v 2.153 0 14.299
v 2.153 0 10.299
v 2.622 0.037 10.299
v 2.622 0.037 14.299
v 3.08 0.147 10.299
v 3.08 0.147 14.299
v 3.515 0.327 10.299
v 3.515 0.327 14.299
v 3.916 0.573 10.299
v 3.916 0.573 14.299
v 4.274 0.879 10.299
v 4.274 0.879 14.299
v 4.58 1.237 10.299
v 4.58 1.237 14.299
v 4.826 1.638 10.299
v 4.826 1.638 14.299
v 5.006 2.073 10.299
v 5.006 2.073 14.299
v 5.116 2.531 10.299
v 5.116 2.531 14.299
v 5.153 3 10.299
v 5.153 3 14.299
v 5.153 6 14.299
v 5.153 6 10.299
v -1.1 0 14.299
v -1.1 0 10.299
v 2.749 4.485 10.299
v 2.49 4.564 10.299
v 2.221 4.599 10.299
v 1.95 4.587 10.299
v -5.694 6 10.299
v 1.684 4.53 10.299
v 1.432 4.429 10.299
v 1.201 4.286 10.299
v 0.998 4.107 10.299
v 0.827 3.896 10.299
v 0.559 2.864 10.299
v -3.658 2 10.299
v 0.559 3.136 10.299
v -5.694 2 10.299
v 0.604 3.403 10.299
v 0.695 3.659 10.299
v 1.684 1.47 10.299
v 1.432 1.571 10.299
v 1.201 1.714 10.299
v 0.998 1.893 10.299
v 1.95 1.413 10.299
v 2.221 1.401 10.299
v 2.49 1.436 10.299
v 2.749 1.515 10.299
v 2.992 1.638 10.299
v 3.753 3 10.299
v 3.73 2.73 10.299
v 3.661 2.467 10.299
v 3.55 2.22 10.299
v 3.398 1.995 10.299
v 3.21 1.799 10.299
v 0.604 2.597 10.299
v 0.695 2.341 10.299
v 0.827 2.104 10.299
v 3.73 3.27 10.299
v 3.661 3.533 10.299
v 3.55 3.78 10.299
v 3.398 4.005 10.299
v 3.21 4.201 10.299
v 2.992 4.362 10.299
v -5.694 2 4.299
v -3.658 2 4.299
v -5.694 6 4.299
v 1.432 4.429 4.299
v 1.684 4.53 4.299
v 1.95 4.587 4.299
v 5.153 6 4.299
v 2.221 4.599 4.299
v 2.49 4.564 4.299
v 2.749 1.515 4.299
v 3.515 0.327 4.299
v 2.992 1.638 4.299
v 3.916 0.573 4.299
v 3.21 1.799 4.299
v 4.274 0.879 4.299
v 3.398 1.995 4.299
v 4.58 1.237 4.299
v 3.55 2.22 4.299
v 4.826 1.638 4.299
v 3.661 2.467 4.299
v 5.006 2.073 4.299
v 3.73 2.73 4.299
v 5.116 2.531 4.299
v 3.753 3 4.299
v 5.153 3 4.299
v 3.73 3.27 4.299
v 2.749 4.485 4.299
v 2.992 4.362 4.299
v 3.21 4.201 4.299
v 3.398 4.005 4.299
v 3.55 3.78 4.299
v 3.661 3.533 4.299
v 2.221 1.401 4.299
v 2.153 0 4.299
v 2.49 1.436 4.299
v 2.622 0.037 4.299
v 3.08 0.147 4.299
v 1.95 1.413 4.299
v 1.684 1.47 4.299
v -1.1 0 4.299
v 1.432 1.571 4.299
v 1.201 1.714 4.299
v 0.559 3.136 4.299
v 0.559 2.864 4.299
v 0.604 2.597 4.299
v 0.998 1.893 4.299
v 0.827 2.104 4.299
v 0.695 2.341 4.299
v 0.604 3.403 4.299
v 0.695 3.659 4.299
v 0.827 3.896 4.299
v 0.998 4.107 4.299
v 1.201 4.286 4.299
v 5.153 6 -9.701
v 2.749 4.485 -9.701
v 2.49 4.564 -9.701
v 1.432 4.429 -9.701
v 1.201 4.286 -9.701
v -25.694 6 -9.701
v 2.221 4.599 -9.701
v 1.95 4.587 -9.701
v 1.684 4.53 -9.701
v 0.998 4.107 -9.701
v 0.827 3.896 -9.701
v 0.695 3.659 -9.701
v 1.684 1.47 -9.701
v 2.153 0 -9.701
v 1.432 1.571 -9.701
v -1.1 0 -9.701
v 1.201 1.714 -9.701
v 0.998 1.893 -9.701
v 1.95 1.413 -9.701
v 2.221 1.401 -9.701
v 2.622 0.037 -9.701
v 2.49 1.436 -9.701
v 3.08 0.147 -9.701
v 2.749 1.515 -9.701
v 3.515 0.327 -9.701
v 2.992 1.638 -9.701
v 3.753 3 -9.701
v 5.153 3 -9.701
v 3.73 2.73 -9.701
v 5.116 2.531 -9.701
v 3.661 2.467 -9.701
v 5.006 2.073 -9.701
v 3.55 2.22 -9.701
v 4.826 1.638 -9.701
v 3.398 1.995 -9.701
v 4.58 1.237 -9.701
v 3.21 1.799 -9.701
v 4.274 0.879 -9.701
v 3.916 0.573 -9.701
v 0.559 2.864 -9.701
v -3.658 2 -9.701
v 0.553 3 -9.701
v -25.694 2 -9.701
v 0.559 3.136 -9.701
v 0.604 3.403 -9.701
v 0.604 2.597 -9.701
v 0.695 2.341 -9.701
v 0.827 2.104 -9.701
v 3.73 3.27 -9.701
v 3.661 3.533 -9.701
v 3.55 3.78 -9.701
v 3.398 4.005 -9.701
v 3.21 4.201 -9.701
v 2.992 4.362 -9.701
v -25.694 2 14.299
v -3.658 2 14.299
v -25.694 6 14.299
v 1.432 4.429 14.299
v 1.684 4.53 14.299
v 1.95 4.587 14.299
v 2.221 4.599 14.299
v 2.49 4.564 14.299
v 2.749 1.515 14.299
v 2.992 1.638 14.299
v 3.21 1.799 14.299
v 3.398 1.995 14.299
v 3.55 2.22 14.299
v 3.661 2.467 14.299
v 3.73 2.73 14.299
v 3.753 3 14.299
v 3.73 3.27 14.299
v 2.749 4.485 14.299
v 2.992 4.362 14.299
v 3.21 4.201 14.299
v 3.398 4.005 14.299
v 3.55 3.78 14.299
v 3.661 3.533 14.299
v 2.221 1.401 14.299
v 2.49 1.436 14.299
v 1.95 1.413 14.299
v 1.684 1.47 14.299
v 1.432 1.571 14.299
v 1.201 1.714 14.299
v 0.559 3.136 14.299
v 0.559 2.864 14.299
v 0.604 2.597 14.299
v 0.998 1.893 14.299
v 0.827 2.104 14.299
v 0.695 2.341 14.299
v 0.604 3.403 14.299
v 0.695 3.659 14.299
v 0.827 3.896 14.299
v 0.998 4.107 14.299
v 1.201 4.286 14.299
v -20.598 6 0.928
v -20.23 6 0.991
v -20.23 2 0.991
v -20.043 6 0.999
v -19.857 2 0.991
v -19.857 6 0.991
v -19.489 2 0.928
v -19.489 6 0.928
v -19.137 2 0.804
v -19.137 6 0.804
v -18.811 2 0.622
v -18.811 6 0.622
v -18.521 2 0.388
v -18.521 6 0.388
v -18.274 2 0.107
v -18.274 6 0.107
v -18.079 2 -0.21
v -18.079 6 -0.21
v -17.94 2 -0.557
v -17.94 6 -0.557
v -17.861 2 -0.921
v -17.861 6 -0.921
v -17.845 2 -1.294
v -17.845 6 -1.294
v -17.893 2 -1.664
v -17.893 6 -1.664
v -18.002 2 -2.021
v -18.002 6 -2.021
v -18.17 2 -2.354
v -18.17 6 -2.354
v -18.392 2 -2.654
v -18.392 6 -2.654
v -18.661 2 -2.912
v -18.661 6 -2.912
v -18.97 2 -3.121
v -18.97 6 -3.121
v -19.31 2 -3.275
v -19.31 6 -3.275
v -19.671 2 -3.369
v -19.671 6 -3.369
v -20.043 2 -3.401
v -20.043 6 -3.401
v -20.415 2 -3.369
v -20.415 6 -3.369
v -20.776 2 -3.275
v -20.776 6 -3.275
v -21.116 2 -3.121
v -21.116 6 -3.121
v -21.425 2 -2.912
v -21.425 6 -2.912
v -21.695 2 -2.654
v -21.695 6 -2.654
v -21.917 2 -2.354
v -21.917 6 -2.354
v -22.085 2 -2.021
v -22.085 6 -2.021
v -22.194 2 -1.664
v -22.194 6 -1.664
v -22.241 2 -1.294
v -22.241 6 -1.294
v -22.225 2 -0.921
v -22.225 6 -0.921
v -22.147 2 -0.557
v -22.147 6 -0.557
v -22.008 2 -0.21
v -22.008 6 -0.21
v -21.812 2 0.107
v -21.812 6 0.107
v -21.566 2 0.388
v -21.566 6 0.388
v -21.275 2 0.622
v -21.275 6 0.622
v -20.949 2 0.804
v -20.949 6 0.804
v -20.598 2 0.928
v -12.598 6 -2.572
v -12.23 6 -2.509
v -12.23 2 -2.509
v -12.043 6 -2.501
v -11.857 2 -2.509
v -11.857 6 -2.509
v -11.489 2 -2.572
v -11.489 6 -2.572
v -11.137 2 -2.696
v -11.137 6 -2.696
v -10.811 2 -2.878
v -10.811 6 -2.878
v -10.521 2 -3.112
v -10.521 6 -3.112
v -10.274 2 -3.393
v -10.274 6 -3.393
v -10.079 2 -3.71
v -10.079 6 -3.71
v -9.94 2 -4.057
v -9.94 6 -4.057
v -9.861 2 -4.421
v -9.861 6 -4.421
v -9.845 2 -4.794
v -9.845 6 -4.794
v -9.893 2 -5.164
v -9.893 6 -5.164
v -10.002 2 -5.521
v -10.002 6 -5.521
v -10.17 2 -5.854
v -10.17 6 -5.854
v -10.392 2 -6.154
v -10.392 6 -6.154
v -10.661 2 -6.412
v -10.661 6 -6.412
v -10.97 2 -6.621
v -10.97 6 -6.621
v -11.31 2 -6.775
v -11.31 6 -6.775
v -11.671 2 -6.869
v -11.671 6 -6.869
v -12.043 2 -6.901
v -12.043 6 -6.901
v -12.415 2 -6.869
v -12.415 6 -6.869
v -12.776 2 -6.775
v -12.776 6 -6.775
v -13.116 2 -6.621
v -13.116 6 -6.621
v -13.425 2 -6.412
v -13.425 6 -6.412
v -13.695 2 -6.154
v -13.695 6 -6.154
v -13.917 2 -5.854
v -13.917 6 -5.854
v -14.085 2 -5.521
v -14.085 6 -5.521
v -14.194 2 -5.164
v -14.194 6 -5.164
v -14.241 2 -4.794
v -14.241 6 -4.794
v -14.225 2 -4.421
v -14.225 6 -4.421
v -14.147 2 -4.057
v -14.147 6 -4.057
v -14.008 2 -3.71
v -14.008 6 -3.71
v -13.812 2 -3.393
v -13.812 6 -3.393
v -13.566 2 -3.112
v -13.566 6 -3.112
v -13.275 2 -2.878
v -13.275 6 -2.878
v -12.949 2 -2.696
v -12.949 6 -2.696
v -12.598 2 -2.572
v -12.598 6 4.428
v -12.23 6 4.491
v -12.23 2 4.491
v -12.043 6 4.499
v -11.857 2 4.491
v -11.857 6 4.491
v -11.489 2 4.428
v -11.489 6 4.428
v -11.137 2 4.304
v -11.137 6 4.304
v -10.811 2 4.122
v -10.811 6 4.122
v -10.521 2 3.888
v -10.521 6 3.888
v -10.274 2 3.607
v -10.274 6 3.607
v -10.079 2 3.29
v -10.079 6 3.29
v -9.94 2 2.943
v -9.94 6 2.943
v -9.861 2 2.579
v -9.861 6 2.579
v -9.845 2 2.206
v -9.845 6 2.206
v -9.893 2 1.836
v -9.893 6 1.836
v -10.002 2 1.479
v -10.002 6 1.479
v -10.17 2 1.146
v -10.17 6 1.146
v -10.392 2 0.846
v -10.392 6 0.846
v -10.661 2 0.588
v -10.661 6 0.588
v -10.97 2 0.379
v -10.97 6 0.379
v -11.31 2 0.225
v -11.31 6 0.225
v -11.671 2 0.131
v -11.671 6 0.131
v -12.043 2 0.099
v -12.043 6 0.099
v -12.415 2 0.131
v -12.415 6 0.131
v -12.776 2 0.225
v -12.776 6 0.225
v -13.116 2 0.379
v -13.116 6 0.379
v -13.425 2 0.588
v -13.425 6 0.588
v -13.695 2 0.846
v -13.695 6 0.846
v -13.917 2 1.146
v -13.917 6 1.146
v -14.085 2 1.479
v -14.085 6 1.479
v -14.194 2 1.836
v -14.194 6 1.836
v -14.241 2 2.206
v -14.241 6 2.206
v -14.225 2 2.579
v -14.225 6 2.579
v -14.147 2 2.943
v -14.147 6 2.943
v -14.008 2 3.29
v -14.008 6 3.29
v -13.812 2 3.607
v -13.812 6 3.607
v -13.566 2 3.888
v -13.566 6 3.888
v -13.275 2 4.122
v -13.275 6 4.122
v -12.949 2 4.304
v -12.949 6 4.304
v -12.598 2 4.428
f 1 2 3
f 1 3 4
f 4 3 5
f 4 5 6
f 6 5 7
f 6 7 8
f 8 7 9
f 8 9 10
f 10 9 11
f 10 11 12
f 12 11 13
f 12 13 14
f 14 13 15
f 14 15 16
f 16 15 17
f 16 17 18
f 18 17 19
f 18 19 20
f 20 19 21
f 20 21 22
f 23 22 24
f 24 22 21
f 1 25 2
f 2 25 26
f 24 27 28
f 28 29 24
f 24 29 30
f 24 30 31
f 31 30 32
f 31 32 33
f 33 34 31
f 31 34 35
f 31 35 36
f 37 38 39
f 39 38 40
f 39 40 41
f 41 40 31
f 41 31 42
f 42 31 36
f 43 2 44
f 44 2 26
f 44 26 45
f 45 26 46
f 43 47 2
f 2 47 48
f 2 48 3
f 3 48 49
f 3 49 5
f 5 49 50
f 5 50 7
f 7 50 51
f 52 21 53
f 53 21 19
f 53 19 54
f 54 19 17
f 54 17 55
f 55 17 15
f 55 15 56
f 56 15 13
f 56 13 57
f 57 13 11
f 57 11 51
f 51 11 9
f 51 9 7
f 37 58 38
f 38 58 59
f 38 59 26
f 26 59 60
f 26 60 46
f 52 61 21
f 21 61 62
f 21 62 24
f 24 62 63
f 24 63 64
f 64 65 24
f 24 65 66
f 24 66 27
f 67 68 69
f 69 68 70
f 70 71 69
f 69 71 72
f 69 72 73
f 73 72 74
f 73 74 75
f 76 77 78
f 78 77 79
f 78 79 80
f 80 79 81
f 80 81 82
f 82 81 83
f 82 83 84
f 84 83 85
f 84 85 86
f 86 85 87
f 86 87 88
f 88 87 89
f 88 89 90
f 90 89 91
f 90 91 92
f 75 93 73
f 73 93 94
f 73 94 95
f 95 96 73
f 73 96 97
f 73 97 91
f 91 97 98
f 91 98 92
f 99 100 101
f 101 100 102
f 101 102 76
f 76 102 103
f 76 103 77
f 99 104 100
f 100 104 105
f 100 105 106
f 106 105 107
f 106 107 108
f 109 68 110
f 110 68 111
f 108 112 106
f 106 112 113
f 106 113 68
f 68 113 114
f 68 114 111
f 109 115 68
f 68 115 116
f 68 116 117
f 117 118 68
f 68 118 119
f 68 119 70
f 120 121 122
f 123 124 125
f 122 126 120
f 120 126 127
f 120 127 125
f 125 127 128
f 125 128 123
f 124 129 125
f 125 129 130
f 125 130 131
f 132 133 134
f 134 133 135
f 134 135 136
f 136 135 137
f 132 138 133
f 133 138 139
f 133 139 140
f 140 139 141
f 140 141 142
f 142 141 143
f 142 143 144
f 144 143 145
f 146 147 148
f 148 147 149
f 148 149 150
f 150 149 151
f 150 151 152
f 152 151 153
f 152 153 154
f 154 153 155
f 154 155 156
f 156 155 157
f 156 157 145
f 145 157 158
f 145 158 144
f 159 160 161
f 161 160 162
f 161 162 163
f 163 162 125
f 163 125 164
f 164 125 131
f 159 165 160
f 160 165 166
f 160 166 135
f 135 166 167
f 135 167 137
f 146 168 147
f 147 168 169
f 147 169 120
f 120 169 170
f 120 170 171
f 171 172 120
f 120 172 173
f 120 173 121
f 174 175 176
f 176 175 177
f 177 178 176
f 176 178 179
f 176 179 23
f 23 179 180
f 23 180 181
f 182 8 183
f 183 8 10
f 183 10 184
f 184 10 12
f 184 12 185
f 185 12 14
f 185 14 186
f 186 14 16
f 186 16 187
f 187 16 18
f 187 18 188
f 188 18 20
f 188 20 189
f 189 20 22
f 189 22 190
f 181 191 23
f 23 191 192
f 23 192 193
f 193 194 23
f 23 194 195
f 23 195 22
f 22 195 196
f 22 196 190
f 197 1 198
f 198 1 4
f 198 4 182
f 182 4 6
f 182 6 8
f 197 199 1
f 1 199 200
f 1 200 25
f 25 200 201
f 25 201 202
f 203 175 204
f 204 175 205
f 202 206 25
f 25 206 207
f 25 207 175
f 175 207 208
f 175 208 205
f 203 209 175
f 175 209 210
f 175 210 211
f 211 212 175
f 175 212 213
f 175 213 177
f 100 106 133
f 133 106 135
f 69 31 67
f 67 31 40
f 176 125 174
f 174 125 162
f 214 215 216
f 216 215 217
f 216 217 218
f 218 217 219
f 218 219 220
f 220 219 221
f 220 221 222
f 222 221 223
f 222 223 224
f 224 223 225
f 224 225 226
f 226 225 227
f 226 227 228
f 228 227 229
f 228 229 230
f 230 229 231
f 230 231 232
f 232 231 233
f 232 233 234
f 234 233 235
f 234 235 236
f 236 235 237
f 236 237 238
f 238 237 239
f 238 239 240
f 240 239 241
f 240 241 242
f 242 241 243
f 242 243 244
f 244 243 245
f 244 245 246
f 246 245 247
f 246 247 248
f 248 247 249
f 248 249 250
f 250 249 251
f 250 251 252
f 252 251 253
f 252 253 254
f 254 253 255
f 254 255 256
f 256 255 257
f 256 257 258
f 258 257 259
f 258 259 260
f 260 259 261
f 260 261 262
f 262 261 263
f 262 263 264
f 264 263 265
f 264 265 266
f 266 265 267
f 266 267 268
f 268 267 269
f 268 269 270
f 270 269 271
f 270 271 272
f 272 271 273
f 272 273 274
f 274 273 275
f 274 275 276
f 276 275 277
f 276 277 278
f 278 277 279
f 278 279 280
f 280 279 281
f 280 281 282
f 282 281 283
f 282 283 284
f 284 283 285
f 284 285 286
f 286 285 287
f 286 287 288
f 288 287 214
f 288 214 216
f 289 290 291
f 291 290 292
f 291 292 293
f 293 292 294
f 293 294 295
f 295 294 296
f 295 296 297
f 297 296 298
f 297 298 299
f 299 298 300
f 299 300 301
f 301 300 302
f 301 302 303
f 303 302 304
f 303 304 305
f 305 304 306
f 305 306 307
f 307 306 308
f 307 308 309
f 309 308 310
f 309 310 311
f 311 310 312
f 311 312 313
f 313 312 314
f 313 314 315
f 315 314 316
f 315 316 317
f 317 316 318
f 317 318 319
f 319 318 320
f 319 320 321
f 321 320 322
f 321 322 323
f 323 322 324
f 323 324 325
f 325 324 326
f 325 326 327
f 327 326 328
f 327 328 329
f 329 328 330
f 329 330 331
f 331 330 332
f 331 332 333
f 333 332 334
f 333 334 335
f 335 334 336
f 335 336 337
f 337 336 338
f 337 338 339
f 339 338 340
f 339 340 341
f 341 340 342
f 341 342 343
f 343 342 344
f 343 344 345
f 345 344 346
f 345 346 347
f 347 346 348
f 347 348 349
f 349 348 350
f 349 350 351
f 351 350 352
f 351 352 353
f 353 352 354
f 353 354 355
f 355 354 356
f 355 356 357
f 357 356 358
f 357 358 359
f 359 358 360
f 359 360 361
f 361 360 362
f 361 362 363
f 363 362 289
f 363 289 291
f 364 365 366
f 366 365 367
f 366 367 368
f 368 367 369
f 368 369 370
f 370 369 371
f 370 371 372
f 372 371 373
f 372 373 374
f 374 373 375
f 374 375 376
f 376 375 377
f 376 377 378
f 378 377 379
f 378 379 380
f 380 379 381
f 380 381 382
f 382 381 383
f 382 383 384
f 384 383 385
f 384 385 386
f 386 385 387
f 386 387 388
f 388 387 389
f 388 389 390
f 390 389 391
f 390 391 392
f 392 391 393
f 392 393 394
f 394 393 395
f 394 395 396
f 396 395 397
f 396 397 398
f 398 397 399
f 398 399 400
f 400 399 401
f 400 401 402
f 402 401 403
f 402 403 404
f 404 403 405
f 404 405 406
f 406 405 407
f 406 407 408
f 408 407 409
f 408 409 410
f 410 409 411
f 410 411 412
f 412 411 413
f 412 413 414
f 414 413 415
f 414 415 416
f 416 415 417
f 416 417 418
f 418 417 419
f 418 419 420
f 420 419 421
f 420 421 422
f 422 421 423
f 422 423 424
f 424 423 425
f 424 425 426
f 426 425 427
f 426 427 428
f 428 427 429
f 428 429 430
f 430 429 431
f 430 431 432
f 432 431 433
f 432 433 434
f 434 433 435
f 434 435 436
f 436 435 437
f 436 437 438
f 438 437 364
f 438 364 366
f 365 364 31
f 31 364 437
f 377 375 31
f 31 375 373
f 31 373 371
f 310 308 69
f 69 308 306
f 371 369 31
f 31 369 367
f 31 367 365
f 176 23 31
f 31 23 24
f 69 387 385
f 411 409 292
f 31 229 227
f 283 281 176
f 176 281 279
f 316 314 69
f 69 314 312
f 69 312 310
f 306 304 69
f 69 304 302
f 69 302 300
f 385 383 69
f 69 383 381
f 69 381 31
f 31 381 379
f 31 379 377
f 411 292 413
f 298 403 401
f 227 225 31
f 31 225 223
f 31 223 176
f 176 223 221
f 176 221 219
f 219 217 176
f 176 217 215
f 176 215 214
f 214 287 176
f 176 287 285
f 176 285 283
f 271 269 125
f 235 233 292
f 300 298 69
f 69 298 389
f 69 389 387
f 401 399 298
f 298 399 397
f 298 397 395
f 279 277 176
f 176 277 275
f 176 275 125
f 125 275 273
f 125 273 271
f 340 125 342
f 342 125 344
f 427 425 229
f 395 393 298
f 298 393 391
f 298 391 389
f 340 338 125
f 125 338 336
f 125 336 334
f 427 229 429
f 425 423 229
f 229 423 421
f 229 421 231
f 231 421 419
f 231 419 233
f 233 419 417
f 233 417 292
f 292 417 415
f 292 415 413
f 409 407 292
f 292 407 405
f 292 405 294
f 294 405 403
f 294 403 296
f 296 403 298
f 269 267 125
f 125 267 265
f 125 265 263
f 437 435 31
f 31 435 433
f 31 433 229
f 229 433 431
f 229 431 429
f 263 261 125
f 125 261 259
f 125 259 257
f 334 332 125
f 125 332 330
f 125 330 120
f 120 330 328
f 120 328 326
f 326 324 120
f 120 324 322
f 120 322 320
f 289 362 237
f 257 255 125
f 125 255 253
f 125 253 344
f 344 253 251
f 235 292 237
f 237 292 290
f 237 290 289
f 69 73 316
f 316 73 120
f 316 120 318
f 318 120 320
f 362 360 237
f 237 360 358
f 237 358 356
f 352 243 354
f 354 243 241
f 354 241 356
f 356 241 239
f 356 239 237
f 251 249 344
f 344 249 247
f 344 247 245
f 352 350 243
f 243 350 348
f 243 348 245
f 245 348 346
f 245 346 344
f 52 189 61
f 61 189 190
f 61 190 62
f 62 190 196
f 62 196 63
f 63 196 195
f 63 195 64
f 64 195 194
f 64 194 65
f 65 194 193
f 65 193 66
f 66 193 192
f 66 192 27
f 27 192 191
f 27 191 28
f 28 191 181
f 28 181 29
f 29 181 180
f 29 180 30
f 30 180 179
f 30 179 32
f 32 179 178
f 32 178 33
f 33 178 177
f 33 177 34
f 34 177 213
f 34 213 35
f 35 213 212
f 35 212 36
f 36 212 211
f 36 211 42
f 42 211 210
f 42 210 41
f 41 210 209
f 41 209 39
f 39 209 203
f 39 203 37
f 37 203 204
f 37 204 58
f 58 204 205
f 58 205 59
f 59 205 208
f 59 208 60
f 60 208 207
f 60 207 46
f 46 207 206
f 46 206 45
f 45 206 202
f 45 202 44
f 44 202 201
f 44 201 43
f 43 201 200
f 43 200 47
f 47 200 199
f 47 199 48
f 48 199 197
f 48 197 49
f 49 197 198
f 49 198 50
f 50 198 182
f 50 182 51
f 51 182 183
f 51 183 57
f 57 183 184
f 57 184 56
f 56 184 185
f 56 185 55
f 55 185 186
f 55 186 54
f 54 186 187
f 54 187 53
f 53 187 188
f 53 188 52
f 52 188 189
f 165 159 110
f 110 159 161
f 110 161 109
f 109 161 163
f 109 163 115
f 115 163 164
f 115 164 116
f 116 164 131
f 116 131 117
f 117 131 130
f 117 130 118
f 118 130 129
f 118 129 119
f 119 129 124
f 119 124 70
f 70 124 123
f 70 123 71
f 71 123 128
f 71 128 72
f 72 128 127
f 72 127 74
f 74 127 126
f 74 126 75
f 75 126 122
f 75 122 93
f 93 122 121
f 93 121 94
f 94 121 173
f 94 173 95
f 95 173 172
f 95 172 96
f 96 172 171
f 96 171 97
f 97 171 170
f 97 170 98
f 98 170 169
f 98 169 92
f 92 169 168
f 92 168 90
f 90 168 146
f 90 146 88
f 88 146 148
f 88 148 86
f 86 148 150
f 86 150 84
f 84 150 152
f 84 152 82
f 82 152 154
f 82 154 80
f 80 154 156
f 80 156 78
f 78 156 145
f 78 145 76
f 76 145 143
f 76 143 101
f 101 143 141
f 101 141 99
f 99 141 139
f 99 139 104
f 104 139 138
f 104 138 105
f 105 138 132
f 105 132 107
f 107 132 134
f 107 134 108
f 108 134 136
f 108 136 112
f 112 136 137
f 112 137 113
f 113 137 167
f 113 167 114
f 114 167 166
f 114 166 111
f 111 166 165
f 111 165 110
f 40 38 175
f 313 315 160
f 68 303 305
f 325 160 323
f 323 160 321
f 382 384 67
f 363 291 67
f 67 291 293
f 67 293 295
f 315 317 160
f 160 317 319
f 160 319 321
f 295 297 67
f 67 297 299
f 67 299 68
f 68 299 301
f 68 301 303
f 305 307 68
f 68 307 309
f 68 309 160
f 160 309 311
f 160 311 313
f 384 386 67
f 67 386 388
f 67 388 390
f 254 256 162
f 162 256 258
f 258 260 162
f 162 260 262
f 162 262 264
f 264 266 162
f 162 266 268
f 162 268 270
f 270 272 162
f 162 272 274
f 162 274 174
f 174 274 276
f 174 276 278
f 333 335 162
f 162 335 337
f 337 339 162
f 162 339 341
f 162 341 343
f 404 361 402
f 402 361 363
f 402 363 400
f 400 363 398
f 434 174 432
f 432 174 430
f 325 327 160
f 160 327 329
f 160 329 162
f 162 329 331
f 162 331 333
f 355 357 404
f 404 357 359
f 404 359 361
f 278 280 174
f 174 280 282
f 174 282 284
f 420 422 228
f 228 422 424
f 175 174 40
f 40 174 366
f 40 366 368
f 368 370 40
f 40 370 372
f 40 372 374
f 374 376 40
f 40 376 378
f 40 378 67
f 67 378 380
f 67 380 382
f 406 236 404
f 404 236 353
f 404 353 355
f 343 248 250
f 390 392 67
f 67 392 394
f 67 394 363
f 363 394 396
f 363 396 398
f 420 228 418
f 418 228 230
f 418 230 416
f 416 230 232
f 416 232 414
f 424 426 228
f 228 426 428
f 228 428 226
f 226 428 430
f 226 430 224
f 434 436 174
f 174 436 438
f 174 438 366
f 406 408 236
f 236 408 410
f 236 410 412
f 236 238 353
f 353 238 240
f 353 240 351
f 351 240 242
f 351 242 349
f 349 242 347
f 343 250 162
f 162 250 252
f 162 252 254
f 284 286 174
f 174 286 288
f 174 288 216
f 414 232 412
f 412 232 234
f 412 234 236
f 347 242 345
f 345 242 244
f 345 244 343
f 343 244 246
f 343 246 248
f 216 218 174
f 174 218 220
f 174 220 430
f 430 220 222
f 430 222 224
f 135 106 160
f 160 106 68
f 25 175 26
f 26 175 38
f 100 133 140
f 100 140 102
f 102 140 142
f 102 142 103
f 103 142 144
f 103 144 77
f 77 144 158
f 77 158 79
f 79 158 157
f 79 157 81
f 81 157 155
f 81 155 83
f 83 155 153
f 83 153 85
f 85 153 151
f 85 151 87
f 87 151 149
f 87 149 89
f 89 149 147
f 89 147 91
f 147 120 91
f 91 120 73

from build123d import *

# Parameters (mm, degrees)
SKETCH_1_R          = 2.2
EXTRUDE_2_DEPTH     = 6
SKETCH_2_R          = 1.6
CUT_EXTRUDE_2_DEPTH = 26
SKETCH_3_W          = 22.036316786
SKETCH_3_H          = 24
CUT_EXTRUDE_3_DEPTH = 2
CUT_EXTRUDE_4_DEPTH = 27
CUT_EXTRUDE_7_DEPTH = 24
EXTRUDE_4_DEPTH     = 24
SKETCH_9_W          = 6
SKETCH_9_H          = 5.089389346
CUT_EXTRUDE_8_DEPTH = 24


with BuildPart() as part:
    # 草图1 → 凸台-拉伸2 (new body)
    with BuildSketch(Plane(origin=(0, 0, 0), x_dir=(1, 0, 0), z_dir=(0, 1, 0))):
        Polygon((4.305555556, 9.700757576), (-25.694444444, 9.700757576), (-25.694444444, -14.299242424), (4.305555556, -14.299242424), (4.305555556, -10.299242424), (-5.694444444, -10.299242424), (-5.694444444, -4.299242424), (4.305555556, -4.299242424), align=None)
        with Locations(Location((-12.043257461, -2.299242424, 0), (0, 0, 270))):
            Circle(SKETCH_1_R, mode=Mode.SUBTRACT)
        with Locations(Location((-20.043257461, 1.200757576, 0), (0, 0, 270))):
            Circle(SKETCH_1_R, mode=Mode.SUBTRACT)
        with Locations(Location((-12.043257461, 4.700757576, 0), (0, 0, 270))):
            Circle(SKETCH_1_R, mode=Mode.SUBTRACT)
    extrude(amount=EXTRUDE_2_DEPTH)

    # 草图2 → 切除-拉伸2 (cut)
    with BuildSketch(Plane.XY.offset(14.299242424)):
        with Locations((2.152777778, 3)):
            Circle(SKETCH_2_R)
    extrude(amount=-CUT_EXTRUDE_2_DEPTH, mode=Mode.SUBTRACT)

    # 草图3 → 切除-拉伸3 (cut)
    with BuildSketch(Plane.XZ):
        with Locations((-14.676286051, 2.299242424)):
            Rectangle(SKETCH_3_W, SKETCH_3_H)
    extrude(amount=-CUT_EXTRUDE_3_DEPTH, mode=Mode.SUBTRACT)

    # 草图4 → 切除-拉伸4 (cut)
    with BuildSketch(Plane.XY.offset(14.299242424)):
        Polygon((-1.100112358, 0), (-3.658127658, 2), (-3.658127658, 0), align=None)
    extrude(amount=-CUT_EXTRUDE_4_DEPTH, mode=Mode.SUBTRACT)

    # 草图5 → 切除-拉伸7 (cut)
    with BuildSketch(Plane(origin=(0, 0, -9.700757576), x_dir=(-1, 0, 0), z_dir=(0, 0, -1))):
        with BuildLine():
            Line((-2.152777778, 0), (-4.305555556, 0))
            Line((-4.305555556, 0), (-4.305555556, 0.910610654))
            ThreePointArc((-4.305555556, 0.910610654), (-3.32150186, 0.237015378), (-2.152777778, 0))
        make_face()
    extrude(amount=-CUT_EXTRUDE_7_DEPTH, mode=Mode.SUBTRACT)

    # 草图8 → 凸台-拉伸4 (add)
    with BuildSketch(Plane(origin=(0, 0, -9.700757576), x_dir=(-1, 0, 0), z_dir=(0, 0, -1))):
        with BuildLine():
            ThreePointArc((-4.305555556, 0.910610654), (-4.932915664, 1.872687562), (-5.152777778, 3))
            Line((-5.152777778, 3), (-5.152777778, 6))
            Line((-5.152777778, 6), (-4.305555556, 6))
            Line((-4.305555556, 6), (-4.305555556, 0.910610654))
        make_face()
    extrude(amount=-EXTRUDE_4_DEPTH)

    # 草图9 → 切除-拉伸8 (cut)
    with BuildSketch(Plane.ZY.offset(-4.305555556)):
        with Locations((7.299242424, 3.455305327)):
            Rectangle(SKETCH_9_W, SKETCH_9_H)
    extrude(amount=-CUT_EXTRUDE_8_DEPTH, mode=Mode.SUBTRACT)


solid = part.part
